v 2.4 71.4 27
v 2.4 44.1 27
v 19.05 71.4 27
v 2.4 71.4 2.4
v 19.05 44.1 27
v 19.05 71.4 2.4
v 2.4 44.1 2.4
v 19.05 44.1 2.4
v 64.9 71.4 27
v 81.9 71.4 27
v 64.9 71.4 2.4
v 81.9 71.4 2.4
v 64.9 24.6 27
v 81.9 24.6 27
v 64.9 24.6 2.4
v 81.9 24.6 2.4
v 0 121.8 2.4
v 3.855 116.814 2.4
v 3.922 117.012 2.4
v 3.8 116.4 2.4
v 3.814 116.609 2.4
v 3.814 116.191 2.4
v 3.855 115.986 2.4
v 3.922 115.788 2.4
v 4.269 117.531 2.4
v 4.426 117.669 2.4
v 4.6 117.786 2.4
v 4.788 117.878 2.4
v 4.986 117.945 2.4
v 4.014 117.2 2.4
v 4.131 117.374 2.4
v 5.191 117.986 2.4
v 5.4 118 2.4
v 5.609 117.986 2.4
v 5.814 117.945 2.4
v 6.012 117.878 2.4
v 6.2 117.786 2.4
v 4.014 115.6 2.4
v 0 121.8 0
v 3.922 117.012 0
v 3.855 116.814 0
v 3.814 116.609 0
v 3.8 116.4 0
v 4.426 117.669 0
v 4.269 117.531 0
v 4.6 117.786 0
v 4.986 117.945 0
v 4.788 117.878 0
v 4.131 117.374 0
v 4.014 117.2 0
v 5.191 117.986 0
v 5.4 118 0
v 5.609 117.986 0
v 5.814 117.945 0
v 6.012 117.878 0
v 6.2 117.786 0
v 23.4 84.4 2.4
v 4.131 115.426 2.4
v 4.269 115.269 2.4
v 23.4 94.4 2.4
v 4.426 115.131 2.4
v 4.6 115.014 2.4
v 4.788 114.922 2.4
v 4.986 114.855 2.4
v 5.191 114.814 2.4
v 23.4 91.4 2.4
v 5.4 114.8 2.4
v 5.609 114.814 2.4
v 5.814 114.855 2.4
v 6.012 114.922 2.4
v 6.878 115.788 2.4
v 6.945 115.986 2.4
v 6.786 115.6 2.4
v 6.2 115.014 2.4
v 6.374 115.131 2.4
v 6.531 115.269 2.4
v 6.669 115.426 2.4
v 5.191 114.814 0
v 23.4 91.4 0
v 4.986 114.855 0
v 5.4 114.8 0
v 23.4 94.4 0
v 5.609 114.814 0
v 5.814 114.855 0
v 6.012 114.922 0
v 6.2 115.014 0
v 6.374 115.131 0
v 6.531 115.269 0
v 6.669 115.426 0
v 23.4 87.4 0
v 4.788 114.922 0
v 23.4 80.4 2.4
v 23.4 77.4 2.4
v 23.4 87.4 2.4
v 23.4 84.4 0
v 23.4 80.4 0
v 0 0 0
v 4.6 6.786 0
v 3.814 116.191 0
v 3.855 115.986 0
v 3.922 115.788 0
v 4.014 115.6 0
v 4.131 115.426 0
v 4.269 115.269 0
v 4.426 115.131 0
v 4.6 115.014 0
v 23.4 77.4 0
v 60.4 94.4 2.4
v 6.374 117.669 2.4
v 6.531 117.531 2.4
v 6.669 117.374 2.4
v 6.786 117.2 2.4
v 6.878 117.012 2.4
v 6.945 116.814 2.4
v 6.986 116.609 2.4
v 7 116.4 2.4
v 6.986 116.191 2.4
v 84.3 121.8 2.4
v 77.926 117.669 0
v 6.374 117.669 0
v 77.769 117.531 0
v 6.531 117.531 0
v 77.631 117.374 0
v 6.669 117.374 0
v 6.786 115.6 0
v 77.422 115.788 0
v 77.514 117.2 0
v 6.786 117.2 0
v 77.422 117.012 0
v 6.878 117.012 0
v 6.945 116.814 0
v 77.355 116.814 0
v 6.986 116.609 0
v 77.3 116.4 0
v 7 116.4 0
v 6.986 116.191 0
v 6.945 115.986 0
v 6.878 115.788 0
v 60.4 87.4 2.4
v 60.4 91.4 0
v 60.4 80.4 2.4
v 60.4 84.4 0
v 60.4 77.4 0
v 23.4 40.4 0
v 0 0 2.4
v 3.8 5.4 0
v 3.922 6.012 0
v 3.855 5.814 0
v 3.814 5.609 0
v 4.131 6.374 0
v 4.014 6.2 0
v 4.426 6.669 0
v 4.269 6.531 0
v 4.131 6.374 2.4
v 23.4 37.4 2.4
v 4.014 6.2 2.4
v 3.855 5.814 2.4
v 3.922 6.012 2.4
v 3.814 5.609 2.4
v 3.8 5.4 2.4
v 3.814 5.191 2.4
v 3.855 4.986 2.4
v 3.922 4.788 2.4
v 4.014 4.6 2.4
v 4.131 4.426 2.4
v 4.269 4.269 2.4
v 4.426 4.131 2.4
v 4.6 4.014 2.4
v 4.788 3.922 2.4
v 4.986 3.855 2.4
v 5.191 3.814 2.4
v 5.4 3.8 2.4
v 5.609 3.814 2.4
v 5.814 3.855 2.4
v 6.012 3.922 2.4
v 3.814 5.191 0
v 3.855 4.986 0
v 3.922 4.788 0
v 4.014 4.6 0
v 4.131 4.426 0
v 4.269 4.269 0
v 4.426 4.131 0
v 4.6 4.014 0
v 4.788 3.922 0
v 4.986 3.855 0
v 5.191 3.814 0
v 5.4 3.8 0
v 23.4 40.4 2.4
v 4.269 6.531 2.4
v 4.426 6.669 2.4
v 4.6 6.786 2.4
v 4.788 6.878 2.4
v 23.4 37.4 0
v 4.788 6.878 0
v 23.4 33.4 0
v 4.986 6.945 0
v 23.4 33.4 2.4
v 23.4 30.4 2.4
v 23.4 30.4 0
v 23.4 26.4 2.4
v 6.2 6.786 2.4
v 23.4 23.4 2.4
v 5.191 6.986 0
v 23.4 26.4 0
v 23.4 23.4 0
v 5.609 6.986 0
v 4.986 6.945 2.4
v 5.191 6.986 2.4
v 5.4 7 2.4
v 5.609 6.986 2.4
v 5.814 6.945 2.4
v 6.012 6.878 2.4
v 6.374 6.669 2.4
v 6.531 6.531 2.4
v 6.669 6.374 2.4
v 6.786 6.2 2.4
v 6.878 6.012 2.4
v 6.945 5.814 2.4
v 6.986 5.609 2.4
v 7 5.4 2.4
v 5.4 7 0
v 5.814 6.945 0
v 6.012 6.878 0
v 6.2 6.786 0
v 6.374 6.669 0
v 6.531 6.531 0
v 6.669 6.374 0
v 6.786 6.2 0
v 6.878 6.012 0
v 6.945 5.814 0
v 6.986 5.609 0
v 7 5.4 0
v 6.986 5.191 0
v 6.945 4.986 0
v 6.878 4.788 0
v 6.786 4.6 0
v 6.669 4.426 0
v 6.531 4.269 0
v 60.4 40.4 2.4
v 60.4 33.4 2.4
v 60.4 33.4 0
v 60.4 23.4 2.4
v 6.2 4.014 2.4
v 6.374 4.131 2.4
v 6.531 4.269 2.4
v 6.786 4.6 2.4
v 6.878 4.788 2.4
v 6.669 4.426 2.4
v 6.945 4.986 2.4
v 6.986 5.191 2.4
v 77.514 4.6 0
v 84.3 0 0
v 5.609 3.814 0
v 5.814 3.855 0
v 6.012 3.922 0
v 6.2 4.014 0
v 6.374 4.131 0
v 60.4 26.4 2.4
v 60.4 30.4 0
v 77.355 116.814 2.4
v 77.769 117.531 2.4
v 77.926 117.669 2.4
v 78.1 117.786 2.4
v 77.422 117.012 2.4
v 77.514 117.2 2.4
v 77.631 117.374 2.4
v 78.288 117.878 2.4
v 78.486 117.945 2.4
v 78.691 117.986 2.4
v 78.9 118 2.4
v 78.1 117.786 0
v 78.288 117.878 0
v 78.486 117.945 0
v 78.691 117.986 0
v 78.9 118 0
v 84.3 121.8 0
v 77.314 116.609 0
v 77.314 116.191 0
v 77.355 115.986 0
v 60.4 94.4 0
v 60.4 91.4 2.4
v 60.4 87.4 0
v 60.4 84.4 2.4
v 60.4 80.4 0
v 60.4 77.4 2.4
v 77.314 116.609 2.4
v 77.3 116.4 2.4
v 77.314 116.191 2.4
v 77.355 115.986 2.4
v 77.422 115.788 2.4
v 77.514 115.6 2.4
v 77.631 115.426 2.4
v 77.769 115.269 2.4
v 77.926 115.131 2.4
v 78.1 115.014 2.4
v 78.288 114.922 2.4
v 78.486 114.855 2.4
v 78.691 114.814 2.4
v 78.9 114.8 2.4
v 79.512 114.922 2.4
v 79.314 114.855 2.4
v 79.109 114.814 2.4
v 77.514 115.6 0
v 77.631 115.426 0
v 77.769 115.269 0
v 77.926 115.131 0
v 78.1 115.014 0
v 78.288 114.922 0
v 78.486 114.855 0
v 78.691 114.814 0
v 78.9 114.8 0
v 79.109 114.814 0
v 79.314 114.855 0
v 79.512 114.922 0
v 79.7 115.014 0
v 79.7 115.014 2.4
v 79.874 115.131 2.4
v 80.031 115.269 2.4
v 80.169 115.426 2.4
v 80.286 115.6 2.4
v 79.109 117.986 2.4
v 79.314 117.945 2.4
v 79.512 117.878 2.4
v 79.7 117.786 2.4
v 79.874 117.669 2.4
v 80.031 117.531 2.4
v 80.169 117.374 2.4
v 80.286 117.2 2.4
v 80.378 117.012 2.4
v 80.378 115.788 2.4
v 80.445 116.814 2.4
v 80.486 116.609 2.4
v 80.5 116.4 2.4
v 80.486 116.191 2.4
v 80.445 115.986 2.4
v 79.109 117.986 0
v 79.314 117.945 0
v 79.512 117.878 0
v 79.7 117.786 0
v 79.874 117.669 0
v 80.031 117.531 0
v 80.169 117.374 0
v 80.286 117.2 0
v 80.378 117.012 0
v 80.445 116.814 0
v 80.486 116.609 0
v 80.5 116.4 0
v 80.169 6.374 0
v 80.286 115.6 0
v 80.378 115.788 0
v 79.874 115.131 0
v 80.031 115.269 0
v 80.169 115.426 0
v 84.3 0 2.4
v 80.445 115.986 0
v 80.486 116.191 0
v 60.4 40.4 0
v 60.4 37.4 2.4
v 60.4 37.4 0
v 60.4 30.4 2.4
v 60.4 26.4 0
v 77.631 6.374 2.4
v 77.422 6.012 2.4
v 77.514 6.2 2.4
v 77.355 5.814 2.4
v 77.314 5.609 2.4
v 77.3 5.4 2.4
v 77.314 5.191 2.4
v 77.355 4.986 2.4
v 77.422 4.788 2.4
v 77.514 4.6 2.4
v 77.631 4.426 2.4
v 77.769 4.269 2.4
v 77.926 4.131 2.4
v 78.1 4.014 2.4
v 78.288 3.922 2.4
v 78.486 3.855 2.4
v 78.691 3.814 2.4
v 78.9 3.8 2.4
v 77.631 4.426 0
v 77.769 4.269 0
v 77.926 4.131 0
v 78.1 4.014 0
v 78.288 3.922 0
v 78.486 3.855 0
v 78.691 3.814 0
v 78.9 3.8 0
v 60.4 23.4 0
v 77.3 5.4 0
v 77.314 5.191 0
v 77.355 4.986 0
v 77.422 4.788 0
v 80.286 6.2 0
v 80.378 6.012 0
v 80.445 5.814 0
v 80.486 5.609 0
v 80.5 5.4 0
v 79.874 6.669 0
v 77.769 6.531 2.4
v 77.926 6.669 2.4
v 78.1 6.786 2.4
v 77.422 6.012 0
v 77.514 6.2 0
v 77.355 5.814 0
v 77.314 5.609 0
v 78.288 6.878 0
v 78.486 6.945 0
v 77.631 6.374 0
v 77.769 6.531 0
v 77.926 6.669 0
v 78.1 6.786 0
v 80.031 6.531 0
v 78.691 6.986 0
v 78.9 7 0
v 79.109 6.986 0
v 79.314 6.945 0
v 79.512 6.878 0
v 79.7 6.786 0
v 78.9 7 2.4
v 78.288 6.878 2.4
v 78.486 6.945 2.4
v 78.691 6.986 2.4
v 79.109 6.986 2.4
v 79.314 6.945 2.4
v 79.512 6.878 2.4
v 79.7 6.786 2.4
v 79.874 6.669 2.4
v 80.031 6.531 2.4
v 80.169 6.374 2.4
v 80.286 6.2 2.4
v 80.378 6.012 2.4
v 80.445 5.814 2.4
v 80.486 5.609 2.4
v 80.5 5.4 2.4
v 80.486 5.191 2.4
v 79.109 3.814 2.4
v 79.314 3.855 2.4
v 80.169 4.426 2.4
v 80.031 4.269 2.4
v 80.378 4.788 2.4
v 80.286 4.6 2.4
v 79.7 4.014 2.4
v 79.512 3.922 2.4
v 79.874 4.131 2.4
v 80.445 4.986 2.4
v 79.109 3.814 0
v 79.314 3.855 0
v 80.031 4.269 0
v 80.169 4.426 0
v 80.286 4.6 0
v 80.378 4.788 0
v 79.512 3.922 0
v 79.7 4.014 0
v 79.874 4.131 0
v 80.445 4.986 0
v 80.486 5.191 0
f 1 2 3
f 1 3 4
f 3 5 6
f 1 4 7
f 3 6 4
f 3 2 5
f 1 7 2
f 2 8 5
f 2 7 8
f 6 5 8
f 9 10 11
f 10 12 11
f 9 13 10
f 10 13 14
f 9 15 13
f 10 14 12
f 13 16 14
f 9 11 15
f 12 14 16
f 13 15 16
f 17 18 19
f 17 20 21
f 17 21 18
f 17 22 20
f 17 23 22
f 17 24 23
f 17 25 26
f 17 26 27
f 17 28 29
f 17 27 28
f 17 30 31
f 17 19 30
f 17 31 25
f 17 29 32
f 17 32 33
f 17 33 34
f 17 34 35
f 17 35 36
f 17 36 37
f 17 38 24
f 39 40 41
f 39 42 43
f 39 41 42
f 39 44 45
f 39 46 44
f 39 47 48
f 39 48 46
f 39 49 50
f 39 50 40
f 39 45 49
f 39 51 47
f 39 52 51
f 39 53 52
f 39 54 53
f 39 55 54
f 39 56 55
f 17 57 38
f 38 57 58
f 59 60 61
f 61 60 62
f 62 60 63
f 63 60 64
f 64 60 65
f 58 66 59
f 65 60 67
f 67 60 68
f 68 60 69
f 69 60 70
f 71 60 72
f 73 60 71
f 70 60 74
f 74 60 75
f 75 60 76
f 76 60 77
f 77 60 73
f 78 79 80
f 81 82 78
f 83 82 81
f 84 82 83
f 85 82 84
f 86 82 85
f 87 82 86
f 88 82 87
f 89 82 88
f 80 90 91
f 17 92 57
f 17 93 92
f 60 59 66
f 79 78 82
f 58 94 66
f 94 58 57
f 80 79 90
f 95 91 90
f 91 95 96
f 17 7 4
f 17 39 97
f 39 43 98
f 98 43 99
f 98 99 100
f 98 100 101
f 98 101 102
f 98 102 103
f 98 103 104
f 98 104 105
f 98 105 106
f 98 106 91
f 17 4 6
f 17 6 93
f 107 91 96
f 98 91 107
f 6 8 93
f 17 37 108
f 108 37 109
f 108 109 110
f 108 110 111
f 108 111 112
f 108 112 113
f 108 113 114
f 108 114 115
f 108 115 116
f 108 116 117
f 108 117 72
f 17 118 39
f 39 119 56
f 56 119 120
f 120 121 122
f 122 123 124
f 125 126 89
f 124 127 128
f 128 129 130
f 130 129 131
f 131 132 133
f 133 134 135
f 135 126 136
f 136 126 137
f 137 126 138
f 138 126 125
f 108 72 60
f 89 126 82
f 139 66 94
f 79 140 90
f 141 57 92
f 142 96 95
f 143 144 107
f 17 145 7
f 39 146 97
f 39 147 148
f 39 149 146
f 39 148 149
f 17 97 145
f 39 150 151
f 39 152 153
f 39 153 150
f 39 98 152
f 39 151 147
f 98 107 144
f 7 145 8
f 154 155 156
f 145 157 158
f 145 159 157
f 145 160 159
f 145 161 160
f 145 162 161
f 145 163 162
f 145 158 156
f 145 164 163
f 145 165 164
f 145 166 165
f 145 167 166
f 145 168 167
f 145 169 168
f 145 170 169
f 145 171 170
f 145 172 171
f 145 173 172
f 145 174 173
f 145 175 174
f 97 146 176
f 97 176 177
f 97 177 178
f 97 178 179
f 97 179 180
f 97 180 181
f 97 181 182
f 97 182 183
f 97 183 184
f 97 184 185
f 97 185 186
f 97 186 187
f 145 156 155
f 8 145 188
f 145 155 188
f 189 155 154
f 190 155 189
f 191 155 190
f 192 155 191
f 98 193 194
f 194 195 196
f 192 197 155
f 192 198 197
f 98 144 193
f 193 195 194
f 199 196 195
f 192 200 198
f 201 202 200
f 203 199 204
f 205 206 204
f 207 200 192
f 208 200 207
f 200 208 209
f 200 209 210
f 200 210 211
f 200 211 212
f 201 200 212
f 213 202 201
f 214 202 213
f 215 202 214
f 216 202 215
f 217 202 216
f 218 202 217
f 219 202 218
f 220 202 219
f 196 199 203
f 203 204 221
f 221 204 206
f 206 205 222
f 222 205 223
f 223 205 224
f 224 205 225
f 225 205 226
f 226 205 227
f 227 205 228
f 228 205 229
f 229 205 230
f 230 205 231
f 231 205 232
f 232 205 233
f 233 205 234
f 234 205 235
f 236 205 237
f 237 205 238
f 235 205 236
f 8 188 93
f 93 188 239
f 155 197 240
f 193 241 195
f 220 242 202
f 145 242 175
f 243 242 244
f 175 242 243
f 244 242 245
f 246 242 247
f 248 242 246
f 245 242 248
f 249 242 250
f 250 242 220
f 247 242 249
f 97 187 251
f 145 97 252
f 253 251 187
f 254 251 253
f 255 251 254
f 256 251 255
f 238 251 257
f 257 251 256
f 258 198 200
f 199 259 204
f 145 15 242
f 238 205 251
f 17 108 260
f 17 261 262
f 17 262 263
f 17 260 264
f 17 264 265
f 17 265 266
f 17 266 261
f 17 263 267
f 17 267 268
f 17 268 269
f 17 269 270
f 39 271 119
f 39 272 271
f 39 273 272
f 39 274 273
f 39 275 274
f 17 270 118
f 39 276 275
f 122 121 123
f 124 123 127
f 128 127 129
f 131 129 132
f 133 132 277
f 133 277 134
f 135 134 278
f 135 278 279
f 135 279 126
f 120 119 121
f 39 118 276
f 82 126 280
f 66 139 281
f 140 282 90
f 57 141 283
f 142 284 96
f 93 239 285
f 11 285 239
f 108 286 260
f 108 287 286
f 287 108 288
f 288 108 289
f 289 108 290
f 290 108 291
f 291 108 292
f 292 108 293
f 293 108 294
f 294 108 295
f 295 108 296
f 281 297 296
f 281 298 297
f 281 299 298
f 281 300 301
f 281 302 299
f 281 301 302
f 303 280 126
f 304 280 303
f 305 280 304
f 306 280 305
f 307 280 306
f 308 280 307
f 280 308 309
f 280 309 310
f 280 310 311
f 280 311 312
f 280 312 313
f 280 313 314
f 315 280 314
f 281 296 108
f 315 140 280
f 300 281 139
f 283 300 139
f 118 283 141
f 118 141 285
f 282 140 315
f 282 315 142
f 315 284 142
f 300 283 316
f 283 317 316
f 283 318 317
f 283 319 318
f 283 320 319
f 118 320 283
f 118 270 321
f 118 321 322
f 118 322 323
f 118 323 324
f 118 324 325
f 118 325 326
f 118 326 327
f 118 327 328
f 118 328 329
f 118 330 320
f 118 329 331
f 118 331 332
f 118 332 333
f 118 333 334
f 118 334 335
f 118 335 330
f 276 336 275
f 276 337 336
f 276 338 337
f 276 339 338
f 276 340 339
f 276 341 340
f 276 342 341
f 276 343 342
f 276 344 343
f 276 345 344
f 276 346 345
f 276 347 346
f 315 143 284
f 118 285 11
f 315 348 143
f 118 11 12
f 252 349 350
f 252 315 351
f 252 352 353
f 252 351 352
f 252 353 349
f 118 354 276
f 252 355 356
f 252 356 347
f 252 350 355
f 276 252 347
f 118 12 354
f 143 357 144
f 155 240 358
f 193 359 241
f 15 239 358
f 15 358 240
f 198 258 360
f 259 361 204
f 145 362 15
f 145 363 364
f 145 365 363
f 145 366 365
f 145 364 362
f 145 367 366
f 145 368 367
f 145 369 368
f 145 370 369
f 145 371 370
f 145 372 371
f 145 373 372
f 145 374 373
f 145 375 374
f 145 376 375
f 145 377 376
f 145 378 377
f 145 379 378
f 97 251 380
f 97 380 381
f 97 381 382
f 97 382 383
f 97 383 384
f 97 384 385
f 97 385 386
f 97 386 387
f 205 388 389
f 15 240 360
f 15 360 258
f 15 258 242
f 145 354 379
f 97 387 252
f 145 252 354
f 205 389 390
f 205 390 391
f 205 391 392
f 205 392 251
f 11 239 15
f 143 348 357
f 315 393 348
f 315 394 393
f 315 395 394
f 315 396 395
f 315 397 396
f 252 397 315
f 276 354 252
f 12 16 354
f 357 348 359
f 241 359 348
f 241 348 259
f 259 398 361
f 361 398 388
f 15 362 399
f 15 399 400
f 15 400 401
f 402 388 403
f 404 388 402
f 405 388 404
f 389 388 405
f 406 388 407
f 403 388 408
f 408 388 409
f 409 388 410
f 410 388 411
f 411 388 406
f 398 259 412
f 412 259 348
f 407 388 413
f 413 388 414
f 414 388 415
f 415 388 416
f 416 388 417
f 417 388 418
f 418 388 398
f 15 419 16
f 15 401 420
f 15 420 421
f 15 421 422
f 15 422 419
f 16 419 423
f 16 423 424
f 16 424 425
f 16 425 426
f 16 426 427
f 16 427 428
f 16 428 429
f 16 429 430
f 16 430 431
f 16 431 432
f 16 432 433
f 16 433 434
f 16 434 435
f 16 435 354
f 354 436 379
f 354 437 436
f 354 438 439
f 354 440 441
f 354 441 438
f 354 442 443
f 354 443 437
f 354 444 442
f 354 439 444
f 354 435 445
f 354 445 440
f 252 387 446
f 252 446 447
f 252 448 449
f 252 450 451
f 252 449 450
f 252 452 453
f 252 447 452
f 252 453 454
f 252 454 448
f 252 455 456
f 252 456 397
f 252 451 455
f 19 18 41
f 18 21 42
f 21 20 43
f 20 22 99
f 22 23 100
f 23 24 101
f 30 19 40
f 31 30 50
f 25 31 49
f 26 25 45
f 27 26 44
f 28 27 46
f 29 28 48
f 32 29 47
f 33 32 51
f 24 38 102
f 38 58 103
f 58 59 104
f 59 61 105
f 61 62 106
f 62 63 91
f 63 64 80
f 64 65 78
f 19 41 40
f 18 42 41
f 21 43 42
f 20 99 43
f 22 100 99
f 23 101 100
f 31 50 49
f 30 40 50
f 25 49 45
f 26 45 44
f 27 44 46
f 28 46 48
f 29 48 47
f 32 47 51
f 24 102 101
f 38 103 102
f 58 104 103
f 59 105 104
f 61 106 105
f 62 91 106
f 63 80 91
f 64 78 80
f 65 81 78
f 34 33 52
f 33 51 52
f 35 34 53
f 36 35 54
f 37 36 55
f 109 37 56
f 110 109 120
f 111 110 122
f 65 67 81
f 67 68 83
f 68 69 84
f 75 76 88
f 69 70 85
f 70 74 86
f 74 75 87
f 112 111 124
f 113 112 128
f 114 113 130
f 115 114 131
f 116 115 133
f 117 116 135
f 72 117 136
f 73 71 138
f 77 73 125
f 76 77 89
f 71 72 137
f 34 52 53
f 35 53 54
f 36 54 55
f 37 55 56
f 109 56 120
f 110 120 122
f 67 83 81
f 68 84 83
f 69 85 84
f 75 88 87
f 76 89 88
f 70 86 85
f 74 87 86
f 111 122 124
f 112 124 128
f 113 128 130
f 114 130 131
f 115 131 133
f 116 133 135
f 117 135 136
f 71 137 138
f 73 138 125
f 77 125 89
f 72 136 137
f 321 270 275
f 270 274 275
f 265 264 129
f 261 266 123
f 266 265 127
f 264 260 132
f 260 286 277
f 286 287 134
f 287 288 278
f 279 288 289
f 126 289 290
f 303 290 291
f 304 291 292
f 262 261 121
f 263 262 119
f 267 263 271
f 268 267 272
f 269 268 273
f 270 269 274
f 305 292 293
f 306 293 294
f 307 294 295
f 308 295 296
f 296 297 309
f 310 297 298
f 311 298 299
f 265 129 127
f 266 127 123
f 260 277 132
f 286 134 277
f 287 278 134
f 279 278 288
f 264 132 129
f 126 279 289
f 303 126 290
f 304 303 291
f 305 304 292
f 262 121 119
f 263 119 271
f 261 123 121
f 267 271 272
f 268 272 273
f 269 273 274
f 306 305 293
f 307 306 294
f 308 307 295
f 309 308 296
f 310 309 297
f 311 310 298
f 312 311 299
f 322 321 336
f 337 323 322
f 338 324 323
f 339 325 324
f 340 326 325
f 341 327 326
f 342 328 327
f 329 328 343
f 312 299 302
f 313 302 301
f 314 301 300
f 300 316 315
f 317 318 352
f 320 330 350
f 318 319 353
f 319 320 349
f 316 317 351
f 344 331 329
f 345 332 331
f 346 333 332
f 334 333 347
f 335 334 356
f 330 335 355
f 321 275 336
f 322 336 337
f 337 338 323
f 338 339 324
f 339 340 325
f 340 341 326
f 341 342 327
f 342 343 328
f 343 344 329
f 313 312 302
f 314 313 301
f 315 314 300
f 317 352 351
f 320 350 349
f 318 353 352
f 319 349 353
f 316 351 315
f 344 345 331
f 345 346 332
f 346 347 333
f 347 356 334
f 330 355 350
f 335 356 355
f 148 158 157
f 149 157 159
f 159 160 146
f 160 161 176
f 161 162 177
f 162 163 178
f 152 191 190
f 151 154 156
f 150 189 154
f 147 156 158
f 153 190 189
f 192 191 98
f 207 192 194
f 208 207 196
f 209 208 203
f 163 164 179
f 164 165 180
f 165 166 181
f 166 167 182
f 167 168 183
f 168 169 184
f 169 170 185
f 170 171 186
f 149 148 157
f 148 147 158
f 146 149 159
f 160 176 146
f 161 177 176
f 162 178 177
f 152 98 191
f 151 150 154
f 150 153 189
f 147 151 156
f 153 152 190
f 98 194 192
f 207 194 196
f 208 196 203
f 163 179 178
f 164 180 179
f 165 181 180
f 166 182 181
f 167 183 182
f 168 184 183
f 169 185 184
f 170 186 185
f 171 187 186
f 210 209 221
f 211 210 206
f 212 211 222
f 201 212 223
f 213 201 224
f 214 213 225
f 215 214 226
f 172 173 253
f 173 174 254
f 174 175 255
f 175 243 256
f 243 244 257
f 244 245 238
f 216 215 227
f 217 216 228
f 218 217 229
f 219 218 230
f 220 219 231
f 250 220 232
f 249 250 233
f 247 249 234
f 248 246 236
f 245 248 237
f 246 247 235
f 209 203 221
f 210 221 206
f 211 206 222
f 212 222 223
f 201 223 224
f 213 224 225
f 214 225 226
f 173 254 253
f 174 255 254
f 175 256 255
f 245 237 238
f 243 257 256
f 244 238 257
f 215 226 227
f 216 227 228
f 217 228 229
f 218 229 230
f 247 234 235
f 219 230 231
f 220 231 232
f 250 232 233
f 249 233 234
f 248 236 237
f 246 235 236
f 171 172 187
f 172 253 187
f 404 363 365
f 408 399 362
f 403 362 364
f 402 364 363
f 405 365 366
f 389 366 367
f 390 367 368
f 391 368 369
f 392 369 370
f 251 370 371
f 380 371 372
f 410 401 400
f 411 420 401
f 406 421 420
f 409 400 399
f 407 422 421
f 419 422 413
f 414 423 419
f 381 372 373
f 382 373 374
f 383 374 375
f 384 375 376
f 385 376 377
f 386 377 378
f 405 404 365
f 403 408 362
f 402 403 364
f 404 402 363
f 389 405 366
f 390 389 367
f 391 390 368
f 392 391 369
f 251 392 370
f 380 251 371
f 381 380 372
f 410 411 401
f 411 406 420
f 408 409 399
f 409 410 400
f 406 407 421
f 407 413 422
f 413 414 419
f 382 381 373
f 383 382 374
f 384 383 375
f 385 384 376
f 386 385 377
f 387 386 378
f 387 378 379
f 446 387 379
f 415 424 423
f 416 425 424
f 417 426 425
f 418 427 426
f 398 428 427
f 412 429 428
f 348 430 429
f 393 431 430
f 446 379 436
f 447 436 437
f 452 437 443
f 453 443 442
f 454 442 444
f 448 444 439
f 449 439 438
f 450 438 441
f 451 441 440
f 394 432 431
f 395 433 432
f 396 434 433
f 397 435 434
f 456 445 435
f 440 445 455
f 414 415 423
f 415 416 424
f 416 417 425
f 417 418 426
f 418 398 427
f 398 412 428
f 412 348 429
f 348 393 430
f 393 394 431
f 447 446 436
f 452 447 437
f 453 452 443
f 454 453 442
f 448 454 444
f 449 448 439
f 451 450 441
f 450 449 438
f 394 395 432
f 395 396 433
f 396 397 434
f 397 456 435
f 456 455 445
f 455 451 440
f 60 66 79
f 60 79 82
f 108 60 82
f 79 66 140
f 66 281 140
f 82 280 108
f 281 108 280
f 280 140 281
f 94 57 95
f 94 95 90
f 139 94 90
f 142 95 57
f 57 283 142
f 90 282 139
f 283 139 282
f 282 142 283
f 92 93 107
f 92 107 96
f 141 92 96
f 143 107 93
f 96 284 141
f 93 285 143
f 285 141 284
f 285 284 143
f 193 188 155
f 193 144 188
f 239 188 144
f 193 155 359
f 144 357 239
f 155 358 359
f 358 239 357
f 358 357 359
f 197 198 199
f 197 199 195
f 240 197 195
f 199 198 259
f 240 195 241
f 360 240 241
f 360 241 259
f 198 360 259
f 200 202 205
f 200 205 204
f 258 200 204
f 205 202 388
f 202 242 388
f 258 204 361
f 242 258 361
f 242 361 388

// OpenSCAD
// GENERATED from build.py and parameters.json. Trial dimensions, mm.
translate([18.4, 98.4, 57.4]) { rotate([180, 0, 0]) { difference() {
union() {
translate([-18.4, -23.4, 55.0]) { cube([84.3,121.8,2.4]); }
translate([-16.0, 27.0, 30.4]) { cube([16.65,27.299999999999997,24.6]); }
translate([46.5, 27.0, 30.4]) { cube([17.0,46.8,24.6]); }
}
translate([-13.0, -18.0, 54.9]) { cylinder(d=3.2,h=3.4,$fn=48); }
translate([60.5, -18.0, 54.9]) { cylinder(d=3.2,h=3.4,$fn=48); }
translate([-13.0, 93.0, 54.9]) { cylinder(d=3.2,h=3.4,$fn=48); }
translate([60.5, 93.0, 54.9]) { cylinder(d=3.2,h=3.4,$fn=48); }
translate([5, 4, 54.9]) { cube([37,3,2.6]); }
translate([5, 11, 54.9]) { cube([37,3,2.6]); }
translate([5, 18, 54.9]) { cube([37,3,2.6]); }
translate([5, 58, 54.9]) { cube([37,3,2.6]); }
translate([5, 65, 54.9]) { cube([37,3,2.6]); }
translate([5, 72, 54.9]) { cube([37,3,2.6]); }
} } }
